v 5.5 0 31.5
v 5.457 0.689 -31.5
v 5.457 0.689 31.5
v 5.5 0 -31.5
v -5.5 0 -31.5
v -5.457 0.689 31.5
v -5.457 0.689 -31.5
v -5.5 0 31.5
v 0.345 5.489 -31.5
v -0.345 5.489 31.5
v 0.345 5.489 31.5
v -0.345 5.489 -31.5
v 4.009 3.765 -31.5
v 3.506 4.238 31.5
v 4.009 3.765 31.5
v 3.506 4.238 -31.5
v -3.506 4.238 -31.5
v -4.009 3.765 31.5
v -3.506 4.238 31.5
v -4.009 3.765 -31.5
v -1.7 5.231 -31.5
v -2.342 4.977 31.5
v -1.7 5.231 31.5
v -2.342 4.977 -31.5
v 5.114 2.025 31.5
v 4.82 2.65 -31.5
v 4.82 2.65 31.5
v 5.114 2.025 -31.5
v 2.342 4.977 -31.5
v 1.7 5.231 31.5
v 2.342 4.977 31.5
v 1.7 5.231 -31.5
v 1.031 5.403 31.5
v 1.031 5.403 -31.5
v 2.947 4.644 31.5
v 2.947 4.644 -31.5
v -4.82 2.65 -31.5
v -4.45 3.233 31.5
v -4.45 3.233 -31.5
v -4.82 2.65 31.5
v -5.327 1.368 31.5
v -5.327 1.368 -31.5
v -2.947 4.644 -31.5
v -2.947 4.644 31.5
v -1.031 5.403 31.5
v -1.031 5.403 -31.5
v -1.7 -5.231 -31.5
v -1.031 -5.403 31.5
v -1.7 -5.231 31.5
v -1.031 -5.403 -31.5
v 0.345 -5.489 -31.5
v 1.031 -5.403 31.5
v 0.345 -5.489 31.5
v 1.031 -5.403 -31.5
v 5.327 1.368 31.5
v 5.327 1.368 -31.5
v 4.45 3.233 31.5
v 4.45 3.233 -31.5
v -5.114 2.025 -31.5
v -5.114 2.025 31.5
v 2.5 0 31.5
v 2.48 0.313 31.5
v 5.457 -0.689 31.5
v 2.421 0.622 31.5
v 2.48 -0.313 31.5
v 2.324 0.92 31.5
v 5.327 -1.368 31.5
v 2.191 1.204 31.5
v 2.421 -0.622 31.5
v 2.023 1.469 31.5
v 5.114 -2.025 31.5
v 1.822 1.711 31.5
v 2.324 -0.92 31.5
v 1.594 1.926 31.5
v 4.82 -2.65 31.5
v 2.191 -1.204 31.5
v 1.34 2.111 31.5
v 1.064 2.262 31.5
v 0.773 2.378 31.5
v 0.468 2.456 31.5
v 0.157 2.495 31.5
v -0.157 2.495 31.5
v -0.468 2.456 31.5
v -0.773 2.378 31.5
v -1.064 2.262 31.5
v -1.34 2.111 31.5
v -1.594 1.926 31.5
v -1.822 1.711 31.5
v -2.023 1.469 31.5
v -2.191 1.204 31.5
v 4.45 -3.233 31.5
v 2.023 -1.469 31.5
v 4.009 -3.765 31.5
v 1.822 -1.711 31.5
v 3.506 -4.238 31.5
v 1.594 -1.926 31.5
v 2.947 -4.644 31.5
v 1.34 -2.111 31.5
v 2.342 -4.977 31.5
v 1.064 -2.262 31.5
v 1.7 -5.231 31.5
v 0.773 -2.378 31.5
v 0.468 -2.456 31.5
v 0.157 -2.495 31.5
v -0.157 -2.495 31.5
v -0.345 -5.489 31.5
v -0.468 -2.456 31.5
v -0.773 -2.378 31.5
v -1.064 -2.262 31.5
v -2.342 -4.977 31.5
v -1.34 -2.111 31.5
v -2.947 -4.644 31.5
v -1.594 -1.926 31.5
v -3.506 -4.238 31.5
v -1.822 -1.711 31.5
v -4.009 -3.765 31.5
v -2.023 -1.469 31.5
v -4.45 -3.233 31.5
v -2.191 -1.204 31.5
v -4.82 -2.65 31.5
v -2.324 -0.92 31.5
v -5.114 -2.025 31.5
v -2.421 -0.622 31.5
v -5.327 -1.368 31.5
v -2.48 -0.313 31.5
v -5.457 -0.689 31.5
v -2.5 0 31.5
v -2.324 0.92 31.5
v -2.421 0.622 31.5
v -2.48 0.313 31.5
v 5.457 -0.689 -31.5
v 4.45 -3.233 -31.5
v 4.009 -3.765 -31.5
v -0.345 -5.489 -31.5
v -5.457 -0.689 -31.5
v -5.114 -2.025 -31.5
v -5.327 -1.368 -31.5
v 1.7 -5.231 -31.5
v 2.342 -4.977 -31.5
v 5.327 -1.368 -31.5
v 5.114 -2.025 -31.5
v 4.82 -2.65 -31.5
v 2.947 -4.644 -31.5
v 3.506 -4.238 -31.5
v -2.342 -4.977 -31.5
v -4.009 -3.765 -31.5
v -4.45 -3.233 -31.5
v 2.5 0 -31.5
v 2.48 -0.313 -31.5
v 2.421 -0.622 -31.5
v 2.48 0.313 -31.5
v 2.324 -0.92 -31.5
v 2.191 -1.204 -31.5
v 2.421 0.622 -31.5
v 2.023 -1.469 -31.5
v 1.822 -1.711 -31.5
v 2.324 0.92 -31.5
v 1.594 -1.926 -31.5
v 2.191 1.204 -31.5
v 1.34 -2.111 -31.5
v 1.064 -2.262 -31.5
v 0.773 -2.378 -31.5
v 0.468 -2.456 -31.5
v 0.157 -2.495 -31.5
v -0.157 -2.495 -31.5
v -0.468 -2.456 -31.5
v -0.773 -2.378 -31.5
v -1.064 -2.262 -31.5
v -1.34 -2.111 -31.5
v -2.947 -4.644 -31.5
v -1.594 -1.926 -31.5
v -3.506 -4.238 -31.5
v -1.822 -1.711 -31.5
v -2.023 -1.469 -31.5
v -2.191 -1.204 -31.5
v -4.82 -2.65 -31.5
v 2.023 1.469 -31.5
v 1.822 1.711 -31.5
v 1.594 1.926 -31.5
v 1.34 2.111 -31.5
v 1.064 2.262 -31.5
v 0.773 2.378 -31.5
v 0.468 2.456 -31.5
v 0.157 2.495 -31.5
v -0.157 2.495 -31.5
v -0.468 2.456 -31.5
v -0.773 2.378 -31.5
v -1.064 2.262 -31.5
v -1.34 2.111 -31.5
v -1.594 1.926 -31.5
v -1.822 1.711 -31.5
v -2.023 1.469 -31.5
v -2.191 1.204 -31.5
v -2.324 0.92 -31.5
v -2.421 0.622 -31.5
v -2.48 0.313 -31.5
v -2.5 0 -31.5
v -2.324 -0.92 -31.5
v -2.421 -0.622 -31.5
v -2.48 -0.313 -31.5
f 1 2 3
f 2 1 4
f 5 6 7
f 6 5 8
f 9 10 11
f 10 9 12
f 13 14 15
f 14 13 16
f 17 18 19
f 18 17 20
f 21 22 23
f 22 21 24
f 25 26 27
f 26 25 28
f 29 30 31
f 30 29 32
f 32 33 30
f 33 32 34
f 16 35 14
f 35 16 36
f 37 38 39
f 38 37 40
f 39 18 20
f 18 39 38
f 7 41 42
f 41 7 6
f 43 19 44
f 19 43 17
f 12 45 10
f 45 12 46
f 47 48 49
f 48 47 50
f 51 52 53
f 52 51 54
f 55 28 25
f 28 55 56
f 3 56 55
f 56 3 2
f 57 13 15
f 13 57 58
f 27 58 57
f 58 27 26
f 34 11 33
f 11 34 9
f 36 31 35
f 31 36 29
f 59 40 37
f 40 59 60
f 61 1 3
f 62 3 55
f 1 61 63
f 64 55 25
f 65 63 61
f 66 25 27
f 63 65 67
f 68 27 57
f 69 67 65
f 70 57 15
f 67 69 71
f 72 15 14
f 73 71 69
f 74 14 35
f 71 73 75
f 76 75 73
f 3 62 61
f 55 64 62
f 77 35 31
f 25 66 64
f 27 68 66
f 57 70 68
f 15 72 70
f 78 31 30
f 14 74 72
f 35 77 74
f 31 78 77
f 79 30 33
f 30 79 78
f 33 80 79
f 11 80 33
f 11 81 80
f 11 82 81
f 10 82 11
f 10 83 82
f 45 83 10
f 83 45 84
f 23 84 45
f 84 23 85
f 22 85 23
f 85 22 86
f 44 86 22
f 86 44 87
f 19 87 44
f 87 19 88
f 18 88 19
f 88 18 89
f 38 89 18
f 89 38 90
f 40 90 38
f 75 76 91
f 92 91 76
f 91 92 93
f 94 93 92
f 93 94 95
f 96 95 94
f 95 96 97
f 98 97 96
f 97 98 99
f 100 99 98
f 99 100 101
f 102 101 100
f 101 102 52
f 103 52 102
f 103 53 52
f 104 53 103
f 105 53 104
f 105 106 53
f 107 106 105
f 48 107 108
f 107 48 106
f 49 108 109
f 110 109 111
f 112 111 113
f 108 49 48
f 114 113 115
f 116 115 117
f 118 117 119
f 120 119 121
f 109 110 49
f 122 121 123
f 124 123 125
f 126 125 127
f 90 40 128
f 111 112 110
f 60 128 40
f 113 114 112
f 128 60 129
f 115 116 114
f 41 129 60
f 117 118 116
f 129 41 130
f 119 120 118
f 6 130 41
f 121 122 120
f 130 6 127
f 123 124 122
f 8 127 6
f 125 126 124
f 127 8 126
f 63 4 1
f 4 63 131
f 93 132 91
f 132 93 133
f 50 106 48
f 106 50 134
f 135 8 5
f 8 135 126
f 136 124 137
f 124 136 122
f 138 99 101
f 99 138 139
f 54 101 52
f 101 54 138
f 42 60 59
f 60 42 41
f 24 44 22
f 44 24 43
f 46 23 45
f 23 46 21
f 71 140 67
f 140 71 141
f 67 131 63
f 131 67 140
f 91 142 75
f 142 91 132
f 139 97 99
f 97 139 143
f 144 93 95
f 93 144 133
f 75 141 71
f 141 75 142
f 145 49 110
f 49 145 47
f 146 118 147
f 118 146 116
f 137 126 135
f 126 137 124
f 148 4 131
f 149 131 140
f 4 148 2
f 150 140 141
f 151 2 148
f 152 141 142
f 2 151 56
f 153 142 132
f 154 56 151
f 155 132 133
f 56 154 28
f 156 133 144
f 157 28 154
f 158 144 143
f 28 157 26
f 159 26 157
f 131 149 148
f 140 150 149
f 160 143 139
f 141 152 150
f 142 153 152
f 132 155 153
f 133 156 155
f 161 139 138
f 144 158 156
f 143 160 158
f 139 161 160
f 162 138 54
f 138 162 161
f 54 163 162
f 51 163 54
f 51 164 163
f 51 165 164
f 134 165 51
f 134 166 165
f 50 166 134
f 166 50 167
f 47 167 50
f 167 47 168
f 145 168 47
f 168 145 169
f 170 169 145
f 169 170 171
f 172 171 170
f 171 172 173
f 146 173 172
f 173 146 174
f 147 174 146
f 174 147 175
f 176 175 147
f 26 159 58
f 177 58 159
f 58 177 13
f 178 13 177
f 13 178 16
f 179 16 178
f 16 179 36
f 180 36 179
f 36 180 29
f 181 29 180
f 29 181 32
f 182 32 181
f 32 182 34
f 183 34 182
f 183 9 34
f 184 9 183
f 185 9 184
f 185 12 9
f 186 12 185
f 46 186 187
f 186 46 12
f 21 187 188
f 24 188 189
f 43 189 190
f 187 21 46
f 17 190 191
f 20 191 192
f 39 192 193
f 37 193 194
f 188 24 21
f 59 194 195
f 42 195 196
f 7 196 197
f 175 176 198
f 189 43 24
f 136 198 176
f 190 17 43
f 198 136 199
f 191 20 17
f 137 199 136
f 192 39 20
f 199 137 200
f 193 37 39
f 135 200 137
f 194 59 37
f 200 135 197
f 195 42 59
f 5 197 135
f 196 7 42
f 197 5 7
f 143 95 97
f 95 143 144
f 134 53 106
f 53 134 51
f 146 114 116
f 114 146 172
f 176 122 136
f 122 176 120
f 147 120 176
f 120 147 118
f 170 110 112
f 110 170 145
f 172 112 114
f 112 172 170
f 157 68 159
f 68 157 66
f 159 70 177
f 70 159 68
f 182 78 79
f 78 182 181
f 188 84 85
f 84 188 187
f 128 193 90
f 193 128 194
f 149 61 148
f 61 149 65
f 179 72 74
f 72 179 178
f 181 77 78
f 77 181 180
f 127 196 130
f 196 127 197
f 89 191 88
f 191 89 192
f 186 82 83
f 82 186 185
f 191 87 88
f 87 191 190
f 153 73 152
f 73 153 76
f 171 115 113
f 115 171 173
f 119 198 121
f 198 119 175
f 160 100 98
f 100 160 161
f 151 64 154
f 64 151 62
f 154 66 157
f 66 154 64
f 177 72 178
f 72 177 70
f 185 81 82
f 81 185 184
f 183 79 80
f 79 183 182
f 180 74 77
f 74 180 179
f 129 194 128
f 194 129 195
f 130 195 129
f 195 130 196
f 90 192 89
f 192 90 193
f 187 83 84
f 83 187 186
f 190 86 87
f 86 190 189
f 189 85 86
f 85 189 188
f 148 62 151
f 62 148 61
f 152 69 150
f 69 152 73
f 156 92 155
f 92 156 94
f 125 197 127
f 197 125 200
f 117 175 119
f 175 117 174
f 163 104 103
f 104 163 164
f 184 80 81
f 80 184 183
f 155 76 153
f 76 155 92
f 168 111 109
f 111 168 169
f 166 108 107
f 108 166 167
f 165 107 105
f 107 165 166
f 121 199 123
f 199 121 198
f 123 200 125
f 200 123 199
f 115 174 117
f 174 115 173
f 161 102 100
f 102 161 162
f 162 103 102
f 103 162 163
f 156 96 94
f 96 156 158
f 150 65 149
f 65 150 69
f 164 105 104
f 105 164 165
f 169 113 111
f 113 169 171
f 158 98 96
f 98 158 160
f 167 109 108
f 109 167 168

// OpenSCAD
$fn = 50;


difference() {
	union() {
		translate(v = [0, 0, -31.5000000000]) {
			cylinder(h = 63, r = 5.5000000000);
		}
	}
	union() {
		translate(v = [0, 0, -100.0000000000]) {
			cylinder(h = 200, r = 2.5000000000);
		}
	}
}
